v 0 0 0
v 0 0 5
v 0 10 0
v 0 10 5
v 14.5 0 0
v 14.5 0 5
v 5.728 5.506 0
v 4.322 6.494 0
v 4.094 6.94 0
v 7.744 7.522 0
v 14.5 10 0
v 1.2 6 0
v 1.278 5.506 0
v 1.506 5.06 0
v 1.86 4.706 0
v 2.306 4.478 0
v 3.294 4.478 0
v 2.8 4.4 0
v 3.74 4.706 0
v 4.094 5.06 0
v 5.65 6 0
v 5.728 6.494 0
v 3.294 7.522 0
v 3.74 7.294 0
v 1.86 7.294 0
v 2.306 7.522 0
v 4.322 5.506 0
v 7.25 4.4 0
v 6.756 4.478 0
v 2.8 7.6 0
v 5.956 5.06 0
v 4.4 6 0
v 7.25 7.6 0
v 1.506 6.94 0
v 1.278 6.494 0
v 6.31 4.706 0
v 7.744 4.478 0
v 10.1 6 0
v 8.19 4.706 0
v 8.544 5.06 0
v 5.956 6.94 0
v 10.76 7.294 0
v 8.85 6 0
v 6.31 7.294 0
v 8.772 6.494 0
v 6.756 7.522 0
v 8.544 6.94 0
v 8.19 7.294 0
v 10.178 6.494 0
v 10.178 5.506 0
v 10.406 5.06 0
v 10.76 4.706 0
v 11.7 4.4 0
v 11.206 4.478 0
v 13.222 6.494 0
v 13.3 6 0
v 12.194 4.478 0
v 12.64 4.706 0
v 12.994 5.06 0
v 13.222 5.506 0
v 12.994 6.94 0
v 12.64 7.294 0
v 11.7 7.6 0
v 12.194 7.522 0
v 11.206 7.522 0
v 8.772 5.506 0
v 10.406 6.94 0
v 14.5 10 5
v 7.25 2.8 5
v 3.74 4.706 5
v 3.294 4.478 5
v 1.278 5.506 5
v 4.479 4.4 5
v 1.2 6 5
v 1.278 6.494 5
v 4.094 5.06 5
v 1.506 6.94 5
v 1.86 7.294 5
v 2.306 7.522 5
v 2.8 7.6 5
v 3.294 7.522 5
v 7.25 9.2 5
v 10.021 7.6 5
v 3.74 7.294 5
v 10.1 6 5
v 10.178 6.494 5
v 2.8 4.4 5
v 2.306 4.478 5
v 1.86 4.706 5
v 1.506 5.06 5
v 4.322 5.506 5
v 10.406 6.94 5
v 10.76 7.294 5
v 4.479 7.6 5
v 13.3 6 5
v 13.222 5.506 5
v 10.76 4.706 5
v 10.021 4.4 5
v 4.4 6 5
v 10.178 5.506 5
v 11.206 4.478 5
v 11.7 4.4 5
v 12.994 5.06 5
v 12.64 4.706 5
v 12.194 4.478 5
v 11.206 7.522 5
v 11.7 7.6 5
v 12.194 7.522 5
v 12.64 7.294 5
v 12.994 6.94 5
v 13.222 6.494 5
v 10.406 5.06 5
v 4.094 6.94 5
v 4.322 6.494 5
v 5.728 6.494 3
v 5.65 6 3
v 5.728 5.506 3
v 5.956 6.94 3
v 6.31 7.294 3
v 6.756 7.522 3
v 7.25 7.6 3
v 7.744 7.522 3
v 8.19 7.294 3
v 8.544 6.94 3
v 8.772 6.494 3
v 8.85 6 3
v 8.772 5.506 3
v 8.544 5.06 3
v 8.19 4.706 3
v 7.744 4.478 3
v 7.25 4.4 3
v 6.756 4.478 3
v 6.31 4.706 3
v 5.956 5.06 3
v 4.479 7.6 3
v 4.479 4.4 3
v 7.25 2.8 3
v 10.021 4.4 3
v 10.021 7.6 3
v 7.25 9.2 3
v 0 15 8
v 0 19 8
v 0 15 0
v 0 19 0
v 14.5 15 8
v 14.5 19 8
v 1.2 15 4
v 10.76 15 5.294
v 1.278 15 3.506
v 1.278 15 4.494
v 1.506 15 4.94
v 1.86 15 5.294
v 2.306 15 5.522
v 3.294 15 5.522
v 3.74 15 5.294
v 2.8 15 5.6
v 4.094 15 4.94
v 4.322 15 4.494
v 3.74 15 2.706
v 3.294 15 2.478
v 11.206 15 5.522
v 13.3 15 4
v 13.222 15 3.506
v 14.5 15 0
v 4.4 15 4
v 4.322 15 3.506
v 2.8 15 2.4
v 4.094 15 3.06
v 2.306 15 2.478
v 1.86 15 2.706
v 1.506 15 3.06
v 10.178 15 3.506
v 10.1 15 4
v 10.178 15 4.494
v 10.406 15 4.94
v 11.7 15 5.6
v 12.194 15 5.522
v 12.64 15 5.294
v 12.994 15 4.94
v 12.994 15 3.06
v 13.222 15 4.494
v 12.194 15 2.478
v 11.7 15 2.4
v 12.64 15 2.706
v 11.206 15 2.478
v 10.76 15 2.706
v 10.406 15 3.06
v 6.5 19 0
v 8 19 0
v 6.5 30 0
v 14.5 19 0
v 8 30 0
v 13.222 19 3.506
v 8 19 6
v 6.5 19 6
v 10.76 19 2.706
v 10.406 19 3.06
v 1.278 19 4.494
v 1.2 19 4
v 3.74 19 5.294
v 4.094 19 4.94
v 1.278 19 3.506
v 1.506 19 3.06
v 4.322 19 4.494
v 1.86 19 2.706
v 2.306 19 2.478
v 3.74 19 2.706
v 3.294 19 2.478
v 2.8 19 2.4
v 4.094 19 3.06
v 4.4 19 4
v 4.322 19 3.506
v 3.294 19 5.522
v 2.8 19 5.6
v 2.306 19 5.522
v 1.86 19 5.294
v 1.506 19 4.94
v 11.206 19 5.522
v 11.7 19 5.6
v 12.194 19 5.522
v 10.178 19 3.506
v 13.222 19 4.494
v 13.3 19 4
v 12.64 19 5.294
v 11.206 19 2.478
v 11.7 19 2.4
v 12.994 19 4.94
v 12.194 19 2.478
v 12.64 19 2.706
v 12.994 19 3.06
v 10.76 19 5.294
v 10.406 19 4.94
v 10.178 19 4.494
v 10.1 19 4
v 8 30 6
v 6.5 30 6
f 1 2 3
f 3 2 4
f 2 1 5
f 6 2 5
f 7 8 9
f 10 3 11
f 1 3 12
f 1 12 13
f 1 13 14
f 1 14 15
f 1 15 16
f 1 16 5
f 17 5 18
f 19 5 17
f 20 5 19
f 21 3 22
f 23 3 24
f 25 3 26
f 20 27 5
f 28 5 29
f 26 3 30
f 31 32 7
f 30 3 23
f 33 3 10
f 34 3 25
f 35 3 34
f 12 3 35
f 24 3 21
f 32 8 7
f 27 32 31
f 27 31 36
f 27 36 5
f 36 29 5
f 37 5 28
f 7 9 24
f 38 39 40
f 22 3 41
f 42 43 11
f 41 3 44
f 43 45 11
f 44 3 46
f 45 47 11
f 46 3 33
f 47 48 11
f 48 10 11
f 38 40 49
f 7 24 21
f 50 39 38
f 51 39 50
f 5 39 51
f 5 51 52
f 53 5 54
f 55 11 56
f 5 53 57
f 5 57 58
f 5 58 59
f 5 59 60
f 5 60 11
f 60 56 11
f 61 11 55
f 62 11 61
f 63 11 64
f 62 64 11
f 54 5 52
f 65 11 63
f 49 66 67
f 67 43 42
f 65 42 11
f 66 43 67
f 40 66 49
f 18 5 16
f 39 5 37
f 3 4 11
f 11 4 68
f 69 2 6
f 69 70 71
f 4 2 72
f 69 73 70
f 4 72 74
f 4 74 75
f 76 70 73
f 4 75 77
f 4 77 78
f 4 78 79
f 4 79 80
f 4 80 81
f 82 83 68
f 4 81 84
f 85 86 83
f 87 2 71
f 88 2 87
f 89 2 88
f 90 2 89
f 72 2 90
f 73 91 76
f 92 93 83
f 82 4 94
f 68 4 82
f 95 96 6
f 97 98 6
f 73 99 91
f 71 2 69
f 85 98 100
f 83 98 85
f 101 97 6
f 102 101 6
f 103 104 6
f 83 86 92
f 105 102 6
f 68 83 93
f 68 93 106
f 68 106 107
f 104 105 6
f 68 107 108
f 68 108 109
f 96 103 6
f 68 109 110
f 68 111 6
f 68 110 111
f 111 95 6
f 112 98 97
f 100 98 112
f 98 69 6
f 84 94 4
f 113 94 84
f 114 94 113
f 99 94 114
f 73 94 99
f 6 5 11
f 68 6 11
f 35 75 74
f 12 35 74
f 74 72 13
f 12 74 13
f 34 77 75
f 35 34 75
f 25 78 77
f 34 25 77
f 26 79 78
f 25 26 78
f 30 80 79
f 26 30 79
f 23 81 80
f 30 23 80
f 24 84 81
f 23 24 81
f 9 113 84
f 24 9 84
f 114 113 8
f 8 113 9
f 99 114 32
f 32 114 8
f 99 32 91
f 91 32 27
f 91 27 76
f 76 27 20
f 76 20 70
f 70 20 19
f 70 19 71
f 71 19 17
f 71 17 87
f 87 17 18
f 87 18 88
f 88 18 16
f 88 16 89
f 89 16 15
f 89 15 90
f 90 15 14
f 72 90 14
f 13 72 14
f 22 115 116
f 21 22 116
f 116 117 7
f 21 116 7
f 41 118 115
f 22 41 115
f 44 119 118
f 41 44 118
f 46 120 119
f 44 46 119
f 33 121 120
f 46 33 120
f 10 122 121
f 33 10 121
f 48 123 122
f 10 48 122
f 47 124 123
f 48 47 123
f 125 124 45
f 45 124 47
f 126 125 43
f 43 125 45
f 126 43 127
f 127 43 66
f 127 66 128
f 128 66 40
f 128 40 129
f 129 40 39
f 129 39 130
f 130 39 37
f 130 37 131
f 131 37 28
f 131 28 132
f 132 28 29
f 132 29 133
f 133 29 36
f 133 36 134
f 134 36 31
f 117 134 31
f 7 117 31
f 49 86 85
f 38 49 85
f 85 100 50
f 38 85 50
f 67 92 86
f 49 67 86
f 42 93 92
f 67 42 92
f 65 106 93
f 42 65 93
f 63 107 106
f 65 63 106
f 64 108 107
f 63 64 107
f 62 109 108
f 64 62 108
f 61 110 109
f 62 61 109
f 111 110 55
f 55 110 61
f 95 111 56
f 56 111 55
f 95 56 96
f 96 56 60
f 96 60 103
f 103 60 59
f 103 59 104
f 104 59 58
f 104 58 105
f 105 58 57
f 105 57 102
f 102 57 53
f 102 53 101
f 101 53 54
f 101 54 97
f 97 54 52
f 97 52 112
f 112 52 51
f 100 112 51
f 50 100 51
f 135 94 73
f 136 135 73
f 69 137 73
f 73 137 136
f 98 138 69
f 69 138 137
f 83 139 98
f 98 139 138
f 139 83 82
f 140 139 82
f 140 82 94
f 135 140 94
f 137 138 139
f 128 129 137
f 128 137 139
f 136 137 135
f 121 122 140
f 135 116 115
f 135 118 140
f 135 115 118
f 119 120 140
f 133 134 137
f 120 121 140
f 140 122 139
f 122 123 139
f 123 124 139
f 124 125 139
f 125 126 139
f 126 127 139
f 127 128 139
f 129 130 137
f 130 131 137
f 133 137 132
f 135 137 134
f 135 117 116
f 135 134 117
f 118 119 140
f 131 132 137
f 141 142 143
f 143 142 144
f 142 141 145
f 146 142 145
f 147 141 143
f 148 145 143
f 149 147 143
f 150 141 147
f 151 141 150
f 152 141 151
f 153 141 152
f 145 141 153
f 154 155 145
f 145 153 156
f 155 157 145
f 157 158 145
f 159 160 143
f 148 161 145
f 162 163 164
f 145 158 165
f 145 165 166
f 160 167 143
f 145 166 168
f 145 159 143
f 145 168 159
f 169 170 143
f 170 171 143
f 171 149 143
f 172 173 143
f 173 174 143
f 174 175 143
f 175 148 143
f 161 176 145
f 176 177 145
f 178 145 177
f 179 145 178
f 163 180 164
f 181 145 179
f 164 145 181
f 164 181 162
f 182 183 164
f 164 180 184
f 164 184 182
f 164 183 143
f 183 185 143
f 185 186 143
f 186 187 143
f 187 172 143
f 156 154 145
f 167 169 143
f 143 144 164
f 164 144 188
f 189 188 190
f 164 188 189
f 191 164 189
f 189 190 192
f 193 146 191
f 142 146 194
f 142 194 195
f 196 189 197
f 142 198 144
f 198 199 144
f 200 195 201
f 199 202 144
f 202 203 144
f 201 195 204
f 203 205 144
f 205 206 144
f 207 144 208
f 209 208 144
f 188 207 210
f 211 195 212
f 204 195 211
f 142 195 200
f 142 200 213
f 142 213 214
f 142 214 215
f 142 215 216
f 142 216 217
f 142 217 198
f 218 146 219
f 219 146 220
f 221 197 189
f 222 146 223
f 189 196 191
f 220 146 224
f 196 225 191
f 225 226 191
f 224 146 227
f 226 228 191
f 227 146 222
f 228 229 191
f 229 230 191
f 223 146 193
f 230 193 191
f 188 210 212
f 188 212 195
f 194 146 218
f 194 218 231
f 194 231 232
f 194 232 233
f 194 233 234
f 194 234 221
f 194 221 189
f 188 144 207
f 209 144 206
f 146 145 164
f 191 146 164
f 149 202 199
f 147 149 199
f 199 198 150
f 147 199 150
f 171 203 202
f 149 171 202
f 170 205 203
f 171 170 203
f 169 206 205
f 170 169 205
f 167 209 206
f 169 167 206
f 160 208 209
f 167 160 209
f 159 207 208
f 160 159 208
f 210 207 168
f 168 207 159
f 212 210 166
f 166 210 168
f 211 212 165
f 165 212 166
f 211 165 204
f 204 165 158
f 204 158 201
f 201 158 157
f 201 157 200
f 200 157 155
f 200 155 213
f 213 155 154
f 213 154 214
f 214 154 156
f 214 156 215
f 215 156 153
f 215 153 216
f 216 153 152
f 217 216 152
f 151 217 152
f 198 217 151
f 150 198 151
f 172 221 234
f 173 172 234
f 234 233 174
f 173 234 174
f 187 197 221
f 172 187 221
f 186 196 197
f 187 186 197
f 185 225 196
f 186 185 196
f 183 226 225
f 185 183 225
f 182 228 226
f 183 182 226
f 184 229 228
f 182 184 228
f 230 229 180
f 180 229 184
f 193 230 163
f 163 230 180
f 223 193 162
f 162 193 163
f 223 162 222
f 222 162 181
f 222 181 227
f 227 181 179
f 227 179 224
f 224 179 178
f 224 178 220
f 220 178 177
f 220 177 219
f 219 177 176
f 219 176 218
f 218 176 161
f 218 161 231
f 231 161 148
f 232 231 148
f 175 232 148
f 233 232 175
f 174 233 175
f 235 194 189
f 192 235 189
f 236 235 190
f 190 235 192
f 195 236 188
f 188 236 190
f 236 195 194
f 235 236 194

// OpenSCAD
/*translate([8,0])rotate([0,-90,0])color([0.0,0.8,0.,0.15])
translate([0,0]){
cube([17,10,1.5]);
cube([5,2,8]);
}*/
use <MCAD/nuts_and_bolts.scad>

difference(){
cube([14.5,10,5]);
translate([0,0,-10]){
translate([2.8,10-4,-0.1])cylinder(r=3.2/2,h=25,$fn=20);
translate([14.5-2.8,10-4,-0.1])cylinder(r=3.2/2,h=25,$fn=20);
}
translate([14.5/2,10-4,-10])cylinder(r=3.2/2,h=20,$fn=20);
translate([14.5/2,10-4,3])rotate([0,0,90])nutHole(3);
}

translate([0,15,8])
rotate([-90,0,0])
difference(){
union(){
cube([14.5,8,4]);
translate([14.5/2-1.5/2,2])cube([1.5,6,15]);
}
translate([2.8,10-4-2,-0.1])cylinder(r=3.2/2,h=10,$fn=20);
translate([14.5-2.8,10-4-2,-0.1])cylinder(r=3.2/2,h=10,$fn=20);
}
